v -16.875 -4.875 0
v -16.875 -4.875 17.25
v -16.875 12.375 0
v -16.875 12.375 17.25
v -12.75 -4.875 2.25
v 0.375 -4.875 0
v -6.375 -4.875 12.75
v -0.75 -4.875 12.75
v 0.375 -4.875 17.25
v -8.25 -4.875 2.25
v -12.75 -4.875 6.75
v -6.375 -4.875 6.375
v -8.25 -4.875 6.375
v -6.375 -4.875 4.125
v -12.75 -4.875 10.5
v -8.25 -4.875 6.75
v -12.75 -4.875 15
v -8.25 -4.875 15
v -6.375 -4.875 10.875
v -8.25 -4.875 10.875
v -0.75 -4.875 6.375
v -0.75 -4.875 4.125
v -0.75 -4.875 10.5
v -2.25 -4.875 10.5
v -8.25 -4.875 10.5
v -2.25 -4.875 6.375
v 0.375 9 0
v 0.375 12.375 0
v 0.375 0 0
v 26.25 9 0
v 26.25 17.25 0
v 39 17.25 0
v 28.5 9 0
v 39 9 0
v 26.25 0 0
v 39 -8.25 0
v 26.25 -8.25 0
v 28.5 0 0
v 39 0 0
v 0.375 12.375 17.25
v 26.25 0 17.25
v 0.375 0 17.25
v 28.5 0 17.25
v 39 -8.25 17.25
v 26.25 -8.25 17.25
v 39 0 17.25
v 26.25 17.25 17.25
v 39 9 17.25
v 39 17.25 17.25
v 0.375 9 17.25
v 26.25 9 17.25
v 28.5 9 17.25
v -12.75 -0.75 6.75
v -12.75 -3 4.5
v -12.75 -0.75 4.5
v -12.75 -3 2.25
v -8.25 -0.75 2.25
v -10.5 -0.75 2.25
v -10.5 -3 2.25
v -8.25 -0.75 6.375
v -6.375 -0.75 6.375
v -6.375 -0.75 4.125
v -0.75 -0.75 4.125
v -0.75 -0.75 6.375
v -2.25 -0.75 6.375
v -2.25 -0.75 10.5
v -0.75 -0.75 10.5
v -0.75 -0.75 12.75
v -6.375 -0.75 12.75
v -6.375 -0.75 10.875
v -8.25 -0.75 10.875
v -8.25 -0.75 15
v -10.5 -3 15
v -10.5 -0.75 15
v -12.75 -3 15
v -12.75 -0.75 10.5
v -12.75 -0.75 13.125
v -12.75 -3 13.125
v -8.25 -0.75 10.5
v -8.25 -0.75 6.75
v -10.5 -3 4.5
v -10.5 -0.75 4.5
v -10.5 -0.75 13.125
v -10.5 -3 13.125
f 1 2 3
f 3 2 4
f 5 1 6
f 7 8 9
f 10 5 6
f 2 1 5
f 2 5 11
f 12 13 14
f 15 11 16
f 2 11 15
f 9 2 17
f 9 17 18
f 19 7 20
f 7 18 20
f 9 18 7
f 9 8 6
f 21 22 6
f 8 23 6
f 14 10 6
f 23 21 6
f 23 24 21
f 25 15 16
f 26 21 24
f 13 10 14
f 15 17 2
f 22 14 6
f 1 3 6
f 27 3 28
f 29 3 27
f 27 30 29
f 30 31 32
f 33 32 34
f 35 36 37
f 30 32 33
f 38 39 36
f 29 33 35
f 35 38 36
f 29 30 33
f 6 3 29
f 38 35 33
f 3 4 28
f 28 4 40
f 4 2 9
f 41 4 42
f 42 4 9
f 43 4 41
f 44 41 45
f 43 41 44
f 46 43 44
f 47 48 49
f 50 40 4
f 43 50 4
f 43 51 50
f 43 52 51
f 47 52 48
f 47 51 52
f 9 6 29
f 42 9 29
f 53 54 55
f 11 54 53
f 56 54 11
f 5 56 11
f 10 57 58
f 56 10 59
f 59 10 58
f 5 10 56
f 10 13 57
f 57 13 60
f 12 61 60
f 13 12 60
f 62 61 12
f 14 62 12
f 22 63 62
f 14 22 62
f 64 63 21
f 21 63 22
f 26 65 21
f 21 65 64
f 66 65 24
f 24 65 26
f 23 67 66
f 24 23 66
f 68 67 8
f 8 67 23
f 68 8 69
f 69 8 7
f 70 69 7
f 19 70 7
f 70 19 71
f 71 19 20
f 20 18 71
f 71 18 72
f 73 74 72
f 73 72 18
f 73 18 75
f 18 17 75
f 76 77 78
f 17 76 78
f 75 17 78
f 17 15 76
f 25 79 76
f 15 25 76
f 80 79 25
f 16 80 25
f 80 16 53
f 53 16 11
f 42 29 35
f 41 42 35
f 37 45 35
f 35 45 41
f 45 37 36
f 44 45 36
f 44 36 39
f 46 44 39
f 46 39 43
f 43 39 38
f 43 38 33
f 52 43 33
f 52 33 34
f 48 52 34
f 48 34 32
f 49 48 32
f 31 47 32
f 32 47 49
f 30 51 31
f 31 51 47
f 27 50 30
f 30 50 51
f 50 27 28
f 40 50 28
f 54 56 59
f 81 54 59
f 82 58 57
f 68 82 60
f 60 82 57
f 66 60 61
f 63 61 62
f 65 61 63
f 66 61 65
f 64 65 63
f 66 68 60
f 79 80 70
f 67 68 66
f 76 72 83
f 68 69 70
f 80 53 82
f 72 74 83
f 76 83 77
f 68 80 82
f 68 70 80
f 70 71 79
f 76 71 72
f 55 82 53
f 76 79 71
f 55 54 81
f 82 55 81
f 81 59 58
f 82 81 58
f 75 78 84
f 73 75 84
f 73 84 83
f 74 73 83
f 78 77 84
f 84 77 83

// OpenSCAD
scale([0.75,0.75,0.75])
union(){
	difference() {
		//head
		translate([-22.5,-6.5,0]) cube([23,23,23]);

		//mouth
		translate([-8.5,-7,14]) cube([7.5,6,3]);
		translate([-11,-7,8.5]) cube([8,6,6]);
		translate([-8.5,-7,5.5]) cube([7.5,6,3]);

		//left eye socket
		translate([-17,-7,3]) cube([6,6,6]);
		//right eye socket
		translate([-17,-7,14]) cube([6,6,6]);	
	}

	//left eye
	translate([-17,-4,3]) cube([3,3,3]);
	//right eye
	translate([-17,-4,17.5]) cube([3,3,3]);

	//body
	cube([38,12,23]);

	//feet
	translate([35,12,0]) cube([17,11,23]);
	translate([35,-11,0]) cube([17,11,23]);
}
